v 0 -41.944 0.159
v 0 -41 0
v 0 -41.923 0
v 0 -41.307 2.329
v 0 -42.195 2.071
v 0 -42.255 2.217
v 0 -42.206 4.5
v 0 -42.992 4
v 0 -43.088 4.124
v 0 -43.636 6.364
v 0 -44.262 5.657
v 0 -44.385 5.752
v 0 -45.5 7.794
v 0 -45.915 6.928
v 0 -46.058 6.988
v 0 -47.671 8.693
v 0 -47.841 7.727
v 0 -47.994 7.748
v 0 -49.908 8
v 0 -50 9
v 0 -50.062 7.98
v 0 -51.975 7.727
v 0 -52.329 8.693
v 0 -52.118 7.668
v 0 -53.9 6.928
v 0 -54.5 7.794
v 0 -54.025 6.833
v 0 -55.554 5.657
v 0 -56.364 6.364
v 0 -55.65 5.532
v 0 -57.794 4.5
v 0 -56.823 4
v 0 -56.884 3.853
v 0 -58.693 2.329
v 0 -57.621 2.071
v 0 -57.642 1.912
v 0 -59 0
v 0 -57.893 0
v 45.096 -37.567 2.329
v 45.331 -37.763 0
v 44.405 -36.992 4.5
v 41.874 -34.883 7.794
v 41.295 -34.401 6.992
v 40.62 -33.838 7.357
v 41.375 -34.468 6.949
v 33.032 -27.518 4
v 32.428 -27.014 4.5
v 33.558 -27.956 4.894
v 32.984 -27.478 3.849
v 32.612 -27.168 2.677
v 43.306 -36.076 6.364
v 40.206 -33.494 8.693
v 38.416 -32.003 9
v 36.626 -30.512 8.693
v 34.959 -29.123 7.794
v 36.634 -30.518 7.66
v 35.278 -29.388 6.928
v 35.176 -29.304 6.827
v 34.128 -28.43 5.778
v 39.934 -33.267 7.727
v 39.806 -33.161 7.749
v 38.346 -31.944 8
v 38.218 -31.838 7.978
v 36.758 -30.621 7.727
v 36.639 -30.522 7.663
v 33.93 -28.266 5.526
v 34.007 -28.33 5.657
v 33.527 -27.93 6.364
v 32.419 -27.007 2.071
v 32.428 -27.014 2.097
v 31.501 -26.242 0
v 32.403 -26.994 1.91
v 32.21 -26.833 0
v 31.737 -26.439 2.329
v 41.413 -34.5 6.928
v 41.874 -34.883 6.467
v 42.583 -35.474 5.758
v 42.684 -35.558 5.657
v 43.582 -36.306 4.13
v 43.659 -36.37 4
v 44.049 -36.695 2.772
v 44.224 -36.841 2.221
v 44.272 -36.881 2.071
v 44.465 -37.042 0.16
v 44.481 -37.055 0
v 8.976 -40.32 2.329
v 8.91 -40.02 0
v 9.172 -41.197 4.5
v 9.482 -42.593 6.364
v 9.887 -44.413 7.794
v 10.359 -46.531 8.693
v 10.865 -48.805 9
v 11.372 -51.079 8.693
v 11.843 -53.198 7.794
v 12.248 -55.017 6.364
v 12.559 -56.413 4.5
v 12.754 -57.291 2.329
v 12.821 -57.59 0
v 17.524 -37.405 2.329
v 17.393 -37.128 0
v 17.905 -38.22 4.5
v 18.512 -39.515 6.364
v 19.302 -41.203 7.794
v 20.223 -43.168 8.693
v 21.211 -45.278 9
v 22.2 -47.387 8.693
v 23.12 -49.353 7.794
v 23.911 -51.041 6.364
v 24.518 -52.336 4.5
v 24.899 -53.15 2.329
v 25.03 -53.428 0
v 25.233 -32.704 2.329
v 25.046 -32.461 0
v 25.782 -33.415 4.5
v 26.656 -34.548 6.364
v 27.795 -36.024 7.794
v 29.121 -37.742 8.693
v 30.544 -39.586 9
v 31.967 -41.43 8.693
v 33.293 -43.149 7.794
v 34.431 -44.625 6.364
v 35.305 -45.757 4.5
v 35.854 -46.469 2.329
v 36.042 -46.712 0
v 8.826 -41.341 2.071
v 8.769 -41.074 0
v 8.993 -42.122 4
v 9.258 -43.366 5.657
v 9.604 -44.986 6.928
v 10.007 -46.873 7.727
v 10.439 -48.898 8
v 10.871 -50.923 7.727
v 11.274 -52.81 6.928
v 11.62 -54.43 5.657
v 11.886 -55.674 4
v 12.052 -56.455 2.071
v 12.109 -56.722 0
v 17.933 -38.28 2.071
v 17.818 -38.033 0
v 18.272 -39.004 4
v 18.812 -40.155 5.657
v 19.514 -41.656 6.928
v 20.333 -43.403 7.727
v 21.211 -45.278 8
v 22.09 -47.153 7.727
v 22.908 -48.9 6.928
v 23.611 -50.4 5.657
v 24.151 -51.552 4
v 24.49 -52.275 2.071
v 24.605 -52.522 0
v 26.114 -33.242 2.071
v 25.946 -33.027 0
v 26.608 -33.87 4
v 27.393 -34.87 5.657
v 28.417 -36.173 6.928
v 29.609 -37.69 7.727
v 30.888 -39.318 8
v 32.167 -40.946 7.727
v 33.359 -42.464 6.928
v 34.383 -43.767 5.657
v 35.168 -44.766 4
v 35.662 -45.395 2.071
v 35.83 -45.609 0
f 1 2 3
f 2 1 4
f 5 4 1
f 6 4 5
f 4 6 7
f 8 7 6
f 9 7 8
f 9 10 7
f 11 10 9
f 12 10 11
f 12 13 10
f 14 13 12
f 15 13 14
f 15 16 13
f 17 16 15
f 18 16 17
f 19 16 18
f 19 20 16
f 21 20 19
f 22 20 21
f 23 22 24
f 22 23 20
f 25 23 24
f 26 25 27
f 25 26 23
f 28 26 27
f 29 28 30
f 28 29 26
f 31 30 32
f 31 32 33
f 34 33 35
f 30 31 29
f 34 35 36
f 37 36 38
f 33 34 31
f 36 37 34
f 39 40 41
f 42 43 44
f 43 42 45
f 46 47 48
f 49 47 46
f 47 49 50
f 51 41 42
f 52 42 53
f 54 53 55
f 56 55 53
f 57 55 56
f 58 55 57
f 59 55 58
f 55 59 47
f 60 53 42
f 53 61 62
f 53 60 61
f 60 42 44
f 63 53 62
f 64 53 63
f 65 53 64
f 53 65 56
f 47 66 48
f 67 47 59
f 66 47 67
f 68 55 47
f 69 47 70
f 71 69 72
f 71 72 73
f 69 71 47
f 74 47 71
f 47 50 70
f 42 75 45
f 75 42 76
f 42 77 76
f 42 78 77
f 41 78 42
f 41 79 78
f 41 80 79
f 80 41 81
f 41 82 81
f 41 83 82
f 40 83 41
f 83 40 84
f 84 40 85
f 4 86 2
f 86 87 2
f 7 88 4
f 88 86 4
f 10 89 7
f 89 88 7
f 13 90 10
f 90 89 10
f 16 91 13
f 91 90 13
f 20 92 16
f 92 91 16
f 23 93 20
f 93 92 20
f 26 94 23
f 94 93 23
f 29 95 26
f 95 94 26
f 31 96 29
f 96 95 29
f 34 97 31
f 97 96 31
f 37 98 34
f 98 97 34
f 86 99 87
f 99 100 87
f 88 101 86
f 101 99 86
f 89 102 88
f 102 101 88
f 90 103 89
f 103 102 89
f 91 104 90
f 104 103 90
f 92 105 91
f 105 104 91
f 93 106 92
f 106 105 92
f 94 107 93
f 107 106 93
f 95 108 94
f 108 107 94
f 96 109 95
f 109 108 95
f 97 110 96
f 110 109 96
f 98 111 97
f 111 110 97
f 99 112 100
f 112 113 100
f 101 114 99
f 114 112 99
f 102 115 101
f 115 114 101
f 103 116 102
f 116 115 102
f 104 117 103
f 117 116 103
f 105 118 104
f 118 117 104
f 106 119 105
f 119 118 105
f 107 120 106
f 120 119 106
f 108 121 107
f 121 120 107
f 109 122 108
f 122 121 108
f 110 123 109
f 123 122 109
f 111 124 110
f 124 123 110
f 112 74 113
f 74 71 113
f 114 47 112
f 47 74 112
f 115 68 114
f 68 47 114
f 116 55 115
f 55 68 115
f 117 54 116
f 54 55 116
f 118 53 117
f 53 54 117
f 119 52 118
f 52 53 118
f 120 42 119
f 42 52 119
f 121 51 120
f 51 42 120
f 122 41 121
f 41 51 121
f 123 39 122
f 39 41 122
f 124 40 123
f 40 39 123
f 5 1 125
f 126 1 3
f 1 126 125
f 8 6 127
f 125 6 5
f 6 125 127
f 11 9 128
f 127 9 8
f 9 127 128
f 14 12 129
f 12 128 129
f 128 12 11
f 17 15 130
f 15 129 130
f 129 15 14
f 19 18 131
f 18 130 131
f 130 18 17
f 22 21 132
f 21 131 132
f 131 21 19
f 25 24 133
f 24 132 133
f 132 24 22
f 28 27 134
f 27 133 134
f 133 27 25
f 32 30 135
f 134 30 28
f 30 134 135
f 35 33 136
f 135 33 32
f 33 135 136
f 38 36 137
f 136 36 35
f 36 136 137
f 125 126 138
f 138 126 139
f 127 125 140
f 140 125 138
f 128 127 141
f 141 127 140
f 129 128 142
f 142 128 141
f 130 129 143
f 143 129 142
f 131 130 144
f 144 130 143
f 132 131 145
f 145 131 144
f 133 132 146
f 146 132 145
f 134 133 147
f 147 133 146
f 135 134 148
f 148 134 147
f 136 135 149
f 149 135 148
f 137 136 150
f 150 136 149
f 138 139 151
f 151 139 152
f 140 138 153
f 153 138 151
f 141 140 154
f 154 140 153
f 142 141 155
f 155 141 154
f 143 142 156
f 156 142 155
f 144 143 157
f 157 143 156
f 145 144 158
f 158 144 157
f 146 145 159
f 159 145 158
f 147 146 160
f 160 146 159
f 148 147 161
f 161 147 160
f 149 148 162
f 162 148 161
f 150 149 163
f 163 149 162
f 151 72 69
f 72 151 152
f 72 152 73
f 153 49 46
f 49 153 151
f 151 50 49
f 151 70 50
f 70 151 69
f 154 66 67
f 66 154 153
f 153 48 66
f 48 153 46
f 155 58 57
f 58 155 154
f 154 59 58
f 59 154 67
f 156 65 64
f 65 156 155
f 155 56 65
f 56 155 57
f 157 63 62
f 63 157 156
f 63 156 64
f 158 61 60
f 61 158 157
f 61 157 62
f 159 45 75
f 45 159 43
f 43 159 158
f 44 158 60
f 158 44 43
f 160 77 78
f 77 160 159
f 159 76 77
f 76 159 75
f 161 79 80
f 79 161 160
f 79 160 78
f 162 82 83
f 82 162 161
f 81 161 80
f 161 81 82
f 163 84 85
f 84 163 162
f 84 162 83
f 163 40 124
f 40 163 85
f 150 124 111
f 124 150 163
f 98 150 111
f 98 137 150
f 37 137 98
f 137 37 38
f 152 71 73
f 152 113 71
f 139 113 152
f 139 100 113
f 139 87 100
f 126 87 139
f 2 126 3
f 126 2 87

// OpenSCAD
// file: ../build_environments.scad
// build_environments.scad: modules to build level sections
//

module pool(diameter=10.0, wall_height=2.0, step_width=3.0, connections=[])
{
    difference() {
        union() {
        difference() {
            cylinder(h=0.5,r1=diameter+step_width,r2=diameter+step_width,$fn=48);
            translate([0,0,-0.1])
                cylinder(h=0.7,r1=diameter,r2=diameter,$fn=48);
        }
        difference() {
            cylinder(h=wall_height,r1=diameter+step_width+1.0,r2=diameter+step_width+1.0,$fn=48);
            translate([0,0,-0.1])
                cylinder(h=wall_height+0.2,r1=diameter+step_width,r2=diameter+step_width,$fn=48);
        }
        }
    
        for (c = connections)
        {
            rotate([0,90,0]) {
                angle = atan2(c[1],c[0]);
                rotate([-angle,0,0]) {
                    cylinder(h=diameter+5.0,r1=c[2],r2=c[2],$fn=48);
                }
            }
        }
    }
}

module straight(length=10.0, width=2.0, dy1=0.0, dy2=0.0, dz=0.0)
{
    dims = [0, 0, 0, 0, 0, (dz/length)];
    matrix = [
        [ 1, dims[0], dims[1], 0 ],
        [ dims[2], 1, dims[4], 0 ],
        [ dims[5], dims[3], 1, 0 ],
        [ 0, 0, 0, 1 ]
    ];
    multmatrix(matrix)
    difference() {
        translate([dy1,0,0])
        union() {
            rotate([0,90,0]) {
                difference() {
                    cylinder(h=(length-dy1-dy2),r1=width+1.0,r2=width+1.0,$fn=24);
                    translate([0,0,-0.1])
                        cylinder(h=(length-dy1-dy2+0.2),r1=width,r2=width,$fn=24);
                }
                difference() {
                    cylinder(h=1.0,r1=width+2.0,r2=width+2.0,$fn=24);
                    translate([0,0,-0.1])
                        cylinder(h=1.2,r1=width,r2=width,$fn=24);
                }
                translate([0,0,(length-dy1-dy2)-1.0]) {
                    difference() {
                        cylinder(h=1.0,r1=width+2.0,r2=width+2.0,$fn=24);
                        translate([0,0,-0.1])
                            cylinder(h=1.2,r1=width,r2=width,$fn=24);
                    }
                }
            }
        }
        translate([0,0,-(2*width+4.0)/2])
            cube([3*length,3*length,2*width+4.0],center=true);
    }
}

module curve(p0=[0,0], center=[0,0], dir=1, angle=0.0, width=2.0)
{
    radius = sqrt((p0[0]-center[0])*(p0[0]-center[0]) + (p0[1]-center[1])*(p0[1]-center[1]));
    if (dir == 0) {
        difference() {
            rotate([0,0,-90])
            difference() {
                rotate_extrude(angle = angle, convexity = 10, $fn=32)
                    translate([radius, 0, 0])
                        circle(r = width+1.0,$fn=24);
                rotate([0,0,-1.0])
                    rotate_extrude(angle = angle+2.0, convexity = 10, $fn=32)
                        translate([radius, 0, 0])
                            circle(r = width,$fn=24);
            }
            translate([0,0,-(2*width+4.0)/2])
                cube([5*radius,5*radius,2*width+4.0],center=true);
        }
    }
    else {
        difference() {
            rotate([0,0,90])
            difference() {
                rotate_extrude(angle = -angle, convexity = 10, $fn=32)
                    translate([radius, 0, 0])
                        circle(r = width+1.0,$fn=24);
                rotate([0,0,1.0])
                    rotate_extrude(angle = -angle-2.0, convexity = 10, $fn=32)
                        translate([radius, 0, 0])
                            circle(r = width,$fn=24);
            }
            translate([0,0,-(2*width+4.0)/2])
                cube([5*radius,5*radius,2*width+4.0],center=true);
        }
    }

}

// test pool
//pool(diameter=12.0000, wall_height=3.0000, step_width=3.0000, connections=[[0.0000,-26.0000,2.0000], [23.6074,0.0000,2.0000]]);

// test straight, slope
//straight(length=26.0000, width=2.0000, dy1=11.8322, dy2=6.7082, dz=0.0000);
//straight(length=29.1549, width=12.0000, dy1=0.0000, dy2=0.0000, dz=-15.0000);

// test curve
//curve(p0=[23.6074, 0.0000], center=[23.6074, 5.0000], dir=0, angle=60.1011, width=2.0000);
//curve(p0=[33.6426, 12.4219], center=[37.9771, 9.9295], dir=1, angle=120.4627, width=2.0000);
// main file
use <../build_environments.scad>;
curve(p0=[103.6582, 338.6889], center=[114.7343, 387.4466], dir=0, angle=50.2038, width=8.0000);
